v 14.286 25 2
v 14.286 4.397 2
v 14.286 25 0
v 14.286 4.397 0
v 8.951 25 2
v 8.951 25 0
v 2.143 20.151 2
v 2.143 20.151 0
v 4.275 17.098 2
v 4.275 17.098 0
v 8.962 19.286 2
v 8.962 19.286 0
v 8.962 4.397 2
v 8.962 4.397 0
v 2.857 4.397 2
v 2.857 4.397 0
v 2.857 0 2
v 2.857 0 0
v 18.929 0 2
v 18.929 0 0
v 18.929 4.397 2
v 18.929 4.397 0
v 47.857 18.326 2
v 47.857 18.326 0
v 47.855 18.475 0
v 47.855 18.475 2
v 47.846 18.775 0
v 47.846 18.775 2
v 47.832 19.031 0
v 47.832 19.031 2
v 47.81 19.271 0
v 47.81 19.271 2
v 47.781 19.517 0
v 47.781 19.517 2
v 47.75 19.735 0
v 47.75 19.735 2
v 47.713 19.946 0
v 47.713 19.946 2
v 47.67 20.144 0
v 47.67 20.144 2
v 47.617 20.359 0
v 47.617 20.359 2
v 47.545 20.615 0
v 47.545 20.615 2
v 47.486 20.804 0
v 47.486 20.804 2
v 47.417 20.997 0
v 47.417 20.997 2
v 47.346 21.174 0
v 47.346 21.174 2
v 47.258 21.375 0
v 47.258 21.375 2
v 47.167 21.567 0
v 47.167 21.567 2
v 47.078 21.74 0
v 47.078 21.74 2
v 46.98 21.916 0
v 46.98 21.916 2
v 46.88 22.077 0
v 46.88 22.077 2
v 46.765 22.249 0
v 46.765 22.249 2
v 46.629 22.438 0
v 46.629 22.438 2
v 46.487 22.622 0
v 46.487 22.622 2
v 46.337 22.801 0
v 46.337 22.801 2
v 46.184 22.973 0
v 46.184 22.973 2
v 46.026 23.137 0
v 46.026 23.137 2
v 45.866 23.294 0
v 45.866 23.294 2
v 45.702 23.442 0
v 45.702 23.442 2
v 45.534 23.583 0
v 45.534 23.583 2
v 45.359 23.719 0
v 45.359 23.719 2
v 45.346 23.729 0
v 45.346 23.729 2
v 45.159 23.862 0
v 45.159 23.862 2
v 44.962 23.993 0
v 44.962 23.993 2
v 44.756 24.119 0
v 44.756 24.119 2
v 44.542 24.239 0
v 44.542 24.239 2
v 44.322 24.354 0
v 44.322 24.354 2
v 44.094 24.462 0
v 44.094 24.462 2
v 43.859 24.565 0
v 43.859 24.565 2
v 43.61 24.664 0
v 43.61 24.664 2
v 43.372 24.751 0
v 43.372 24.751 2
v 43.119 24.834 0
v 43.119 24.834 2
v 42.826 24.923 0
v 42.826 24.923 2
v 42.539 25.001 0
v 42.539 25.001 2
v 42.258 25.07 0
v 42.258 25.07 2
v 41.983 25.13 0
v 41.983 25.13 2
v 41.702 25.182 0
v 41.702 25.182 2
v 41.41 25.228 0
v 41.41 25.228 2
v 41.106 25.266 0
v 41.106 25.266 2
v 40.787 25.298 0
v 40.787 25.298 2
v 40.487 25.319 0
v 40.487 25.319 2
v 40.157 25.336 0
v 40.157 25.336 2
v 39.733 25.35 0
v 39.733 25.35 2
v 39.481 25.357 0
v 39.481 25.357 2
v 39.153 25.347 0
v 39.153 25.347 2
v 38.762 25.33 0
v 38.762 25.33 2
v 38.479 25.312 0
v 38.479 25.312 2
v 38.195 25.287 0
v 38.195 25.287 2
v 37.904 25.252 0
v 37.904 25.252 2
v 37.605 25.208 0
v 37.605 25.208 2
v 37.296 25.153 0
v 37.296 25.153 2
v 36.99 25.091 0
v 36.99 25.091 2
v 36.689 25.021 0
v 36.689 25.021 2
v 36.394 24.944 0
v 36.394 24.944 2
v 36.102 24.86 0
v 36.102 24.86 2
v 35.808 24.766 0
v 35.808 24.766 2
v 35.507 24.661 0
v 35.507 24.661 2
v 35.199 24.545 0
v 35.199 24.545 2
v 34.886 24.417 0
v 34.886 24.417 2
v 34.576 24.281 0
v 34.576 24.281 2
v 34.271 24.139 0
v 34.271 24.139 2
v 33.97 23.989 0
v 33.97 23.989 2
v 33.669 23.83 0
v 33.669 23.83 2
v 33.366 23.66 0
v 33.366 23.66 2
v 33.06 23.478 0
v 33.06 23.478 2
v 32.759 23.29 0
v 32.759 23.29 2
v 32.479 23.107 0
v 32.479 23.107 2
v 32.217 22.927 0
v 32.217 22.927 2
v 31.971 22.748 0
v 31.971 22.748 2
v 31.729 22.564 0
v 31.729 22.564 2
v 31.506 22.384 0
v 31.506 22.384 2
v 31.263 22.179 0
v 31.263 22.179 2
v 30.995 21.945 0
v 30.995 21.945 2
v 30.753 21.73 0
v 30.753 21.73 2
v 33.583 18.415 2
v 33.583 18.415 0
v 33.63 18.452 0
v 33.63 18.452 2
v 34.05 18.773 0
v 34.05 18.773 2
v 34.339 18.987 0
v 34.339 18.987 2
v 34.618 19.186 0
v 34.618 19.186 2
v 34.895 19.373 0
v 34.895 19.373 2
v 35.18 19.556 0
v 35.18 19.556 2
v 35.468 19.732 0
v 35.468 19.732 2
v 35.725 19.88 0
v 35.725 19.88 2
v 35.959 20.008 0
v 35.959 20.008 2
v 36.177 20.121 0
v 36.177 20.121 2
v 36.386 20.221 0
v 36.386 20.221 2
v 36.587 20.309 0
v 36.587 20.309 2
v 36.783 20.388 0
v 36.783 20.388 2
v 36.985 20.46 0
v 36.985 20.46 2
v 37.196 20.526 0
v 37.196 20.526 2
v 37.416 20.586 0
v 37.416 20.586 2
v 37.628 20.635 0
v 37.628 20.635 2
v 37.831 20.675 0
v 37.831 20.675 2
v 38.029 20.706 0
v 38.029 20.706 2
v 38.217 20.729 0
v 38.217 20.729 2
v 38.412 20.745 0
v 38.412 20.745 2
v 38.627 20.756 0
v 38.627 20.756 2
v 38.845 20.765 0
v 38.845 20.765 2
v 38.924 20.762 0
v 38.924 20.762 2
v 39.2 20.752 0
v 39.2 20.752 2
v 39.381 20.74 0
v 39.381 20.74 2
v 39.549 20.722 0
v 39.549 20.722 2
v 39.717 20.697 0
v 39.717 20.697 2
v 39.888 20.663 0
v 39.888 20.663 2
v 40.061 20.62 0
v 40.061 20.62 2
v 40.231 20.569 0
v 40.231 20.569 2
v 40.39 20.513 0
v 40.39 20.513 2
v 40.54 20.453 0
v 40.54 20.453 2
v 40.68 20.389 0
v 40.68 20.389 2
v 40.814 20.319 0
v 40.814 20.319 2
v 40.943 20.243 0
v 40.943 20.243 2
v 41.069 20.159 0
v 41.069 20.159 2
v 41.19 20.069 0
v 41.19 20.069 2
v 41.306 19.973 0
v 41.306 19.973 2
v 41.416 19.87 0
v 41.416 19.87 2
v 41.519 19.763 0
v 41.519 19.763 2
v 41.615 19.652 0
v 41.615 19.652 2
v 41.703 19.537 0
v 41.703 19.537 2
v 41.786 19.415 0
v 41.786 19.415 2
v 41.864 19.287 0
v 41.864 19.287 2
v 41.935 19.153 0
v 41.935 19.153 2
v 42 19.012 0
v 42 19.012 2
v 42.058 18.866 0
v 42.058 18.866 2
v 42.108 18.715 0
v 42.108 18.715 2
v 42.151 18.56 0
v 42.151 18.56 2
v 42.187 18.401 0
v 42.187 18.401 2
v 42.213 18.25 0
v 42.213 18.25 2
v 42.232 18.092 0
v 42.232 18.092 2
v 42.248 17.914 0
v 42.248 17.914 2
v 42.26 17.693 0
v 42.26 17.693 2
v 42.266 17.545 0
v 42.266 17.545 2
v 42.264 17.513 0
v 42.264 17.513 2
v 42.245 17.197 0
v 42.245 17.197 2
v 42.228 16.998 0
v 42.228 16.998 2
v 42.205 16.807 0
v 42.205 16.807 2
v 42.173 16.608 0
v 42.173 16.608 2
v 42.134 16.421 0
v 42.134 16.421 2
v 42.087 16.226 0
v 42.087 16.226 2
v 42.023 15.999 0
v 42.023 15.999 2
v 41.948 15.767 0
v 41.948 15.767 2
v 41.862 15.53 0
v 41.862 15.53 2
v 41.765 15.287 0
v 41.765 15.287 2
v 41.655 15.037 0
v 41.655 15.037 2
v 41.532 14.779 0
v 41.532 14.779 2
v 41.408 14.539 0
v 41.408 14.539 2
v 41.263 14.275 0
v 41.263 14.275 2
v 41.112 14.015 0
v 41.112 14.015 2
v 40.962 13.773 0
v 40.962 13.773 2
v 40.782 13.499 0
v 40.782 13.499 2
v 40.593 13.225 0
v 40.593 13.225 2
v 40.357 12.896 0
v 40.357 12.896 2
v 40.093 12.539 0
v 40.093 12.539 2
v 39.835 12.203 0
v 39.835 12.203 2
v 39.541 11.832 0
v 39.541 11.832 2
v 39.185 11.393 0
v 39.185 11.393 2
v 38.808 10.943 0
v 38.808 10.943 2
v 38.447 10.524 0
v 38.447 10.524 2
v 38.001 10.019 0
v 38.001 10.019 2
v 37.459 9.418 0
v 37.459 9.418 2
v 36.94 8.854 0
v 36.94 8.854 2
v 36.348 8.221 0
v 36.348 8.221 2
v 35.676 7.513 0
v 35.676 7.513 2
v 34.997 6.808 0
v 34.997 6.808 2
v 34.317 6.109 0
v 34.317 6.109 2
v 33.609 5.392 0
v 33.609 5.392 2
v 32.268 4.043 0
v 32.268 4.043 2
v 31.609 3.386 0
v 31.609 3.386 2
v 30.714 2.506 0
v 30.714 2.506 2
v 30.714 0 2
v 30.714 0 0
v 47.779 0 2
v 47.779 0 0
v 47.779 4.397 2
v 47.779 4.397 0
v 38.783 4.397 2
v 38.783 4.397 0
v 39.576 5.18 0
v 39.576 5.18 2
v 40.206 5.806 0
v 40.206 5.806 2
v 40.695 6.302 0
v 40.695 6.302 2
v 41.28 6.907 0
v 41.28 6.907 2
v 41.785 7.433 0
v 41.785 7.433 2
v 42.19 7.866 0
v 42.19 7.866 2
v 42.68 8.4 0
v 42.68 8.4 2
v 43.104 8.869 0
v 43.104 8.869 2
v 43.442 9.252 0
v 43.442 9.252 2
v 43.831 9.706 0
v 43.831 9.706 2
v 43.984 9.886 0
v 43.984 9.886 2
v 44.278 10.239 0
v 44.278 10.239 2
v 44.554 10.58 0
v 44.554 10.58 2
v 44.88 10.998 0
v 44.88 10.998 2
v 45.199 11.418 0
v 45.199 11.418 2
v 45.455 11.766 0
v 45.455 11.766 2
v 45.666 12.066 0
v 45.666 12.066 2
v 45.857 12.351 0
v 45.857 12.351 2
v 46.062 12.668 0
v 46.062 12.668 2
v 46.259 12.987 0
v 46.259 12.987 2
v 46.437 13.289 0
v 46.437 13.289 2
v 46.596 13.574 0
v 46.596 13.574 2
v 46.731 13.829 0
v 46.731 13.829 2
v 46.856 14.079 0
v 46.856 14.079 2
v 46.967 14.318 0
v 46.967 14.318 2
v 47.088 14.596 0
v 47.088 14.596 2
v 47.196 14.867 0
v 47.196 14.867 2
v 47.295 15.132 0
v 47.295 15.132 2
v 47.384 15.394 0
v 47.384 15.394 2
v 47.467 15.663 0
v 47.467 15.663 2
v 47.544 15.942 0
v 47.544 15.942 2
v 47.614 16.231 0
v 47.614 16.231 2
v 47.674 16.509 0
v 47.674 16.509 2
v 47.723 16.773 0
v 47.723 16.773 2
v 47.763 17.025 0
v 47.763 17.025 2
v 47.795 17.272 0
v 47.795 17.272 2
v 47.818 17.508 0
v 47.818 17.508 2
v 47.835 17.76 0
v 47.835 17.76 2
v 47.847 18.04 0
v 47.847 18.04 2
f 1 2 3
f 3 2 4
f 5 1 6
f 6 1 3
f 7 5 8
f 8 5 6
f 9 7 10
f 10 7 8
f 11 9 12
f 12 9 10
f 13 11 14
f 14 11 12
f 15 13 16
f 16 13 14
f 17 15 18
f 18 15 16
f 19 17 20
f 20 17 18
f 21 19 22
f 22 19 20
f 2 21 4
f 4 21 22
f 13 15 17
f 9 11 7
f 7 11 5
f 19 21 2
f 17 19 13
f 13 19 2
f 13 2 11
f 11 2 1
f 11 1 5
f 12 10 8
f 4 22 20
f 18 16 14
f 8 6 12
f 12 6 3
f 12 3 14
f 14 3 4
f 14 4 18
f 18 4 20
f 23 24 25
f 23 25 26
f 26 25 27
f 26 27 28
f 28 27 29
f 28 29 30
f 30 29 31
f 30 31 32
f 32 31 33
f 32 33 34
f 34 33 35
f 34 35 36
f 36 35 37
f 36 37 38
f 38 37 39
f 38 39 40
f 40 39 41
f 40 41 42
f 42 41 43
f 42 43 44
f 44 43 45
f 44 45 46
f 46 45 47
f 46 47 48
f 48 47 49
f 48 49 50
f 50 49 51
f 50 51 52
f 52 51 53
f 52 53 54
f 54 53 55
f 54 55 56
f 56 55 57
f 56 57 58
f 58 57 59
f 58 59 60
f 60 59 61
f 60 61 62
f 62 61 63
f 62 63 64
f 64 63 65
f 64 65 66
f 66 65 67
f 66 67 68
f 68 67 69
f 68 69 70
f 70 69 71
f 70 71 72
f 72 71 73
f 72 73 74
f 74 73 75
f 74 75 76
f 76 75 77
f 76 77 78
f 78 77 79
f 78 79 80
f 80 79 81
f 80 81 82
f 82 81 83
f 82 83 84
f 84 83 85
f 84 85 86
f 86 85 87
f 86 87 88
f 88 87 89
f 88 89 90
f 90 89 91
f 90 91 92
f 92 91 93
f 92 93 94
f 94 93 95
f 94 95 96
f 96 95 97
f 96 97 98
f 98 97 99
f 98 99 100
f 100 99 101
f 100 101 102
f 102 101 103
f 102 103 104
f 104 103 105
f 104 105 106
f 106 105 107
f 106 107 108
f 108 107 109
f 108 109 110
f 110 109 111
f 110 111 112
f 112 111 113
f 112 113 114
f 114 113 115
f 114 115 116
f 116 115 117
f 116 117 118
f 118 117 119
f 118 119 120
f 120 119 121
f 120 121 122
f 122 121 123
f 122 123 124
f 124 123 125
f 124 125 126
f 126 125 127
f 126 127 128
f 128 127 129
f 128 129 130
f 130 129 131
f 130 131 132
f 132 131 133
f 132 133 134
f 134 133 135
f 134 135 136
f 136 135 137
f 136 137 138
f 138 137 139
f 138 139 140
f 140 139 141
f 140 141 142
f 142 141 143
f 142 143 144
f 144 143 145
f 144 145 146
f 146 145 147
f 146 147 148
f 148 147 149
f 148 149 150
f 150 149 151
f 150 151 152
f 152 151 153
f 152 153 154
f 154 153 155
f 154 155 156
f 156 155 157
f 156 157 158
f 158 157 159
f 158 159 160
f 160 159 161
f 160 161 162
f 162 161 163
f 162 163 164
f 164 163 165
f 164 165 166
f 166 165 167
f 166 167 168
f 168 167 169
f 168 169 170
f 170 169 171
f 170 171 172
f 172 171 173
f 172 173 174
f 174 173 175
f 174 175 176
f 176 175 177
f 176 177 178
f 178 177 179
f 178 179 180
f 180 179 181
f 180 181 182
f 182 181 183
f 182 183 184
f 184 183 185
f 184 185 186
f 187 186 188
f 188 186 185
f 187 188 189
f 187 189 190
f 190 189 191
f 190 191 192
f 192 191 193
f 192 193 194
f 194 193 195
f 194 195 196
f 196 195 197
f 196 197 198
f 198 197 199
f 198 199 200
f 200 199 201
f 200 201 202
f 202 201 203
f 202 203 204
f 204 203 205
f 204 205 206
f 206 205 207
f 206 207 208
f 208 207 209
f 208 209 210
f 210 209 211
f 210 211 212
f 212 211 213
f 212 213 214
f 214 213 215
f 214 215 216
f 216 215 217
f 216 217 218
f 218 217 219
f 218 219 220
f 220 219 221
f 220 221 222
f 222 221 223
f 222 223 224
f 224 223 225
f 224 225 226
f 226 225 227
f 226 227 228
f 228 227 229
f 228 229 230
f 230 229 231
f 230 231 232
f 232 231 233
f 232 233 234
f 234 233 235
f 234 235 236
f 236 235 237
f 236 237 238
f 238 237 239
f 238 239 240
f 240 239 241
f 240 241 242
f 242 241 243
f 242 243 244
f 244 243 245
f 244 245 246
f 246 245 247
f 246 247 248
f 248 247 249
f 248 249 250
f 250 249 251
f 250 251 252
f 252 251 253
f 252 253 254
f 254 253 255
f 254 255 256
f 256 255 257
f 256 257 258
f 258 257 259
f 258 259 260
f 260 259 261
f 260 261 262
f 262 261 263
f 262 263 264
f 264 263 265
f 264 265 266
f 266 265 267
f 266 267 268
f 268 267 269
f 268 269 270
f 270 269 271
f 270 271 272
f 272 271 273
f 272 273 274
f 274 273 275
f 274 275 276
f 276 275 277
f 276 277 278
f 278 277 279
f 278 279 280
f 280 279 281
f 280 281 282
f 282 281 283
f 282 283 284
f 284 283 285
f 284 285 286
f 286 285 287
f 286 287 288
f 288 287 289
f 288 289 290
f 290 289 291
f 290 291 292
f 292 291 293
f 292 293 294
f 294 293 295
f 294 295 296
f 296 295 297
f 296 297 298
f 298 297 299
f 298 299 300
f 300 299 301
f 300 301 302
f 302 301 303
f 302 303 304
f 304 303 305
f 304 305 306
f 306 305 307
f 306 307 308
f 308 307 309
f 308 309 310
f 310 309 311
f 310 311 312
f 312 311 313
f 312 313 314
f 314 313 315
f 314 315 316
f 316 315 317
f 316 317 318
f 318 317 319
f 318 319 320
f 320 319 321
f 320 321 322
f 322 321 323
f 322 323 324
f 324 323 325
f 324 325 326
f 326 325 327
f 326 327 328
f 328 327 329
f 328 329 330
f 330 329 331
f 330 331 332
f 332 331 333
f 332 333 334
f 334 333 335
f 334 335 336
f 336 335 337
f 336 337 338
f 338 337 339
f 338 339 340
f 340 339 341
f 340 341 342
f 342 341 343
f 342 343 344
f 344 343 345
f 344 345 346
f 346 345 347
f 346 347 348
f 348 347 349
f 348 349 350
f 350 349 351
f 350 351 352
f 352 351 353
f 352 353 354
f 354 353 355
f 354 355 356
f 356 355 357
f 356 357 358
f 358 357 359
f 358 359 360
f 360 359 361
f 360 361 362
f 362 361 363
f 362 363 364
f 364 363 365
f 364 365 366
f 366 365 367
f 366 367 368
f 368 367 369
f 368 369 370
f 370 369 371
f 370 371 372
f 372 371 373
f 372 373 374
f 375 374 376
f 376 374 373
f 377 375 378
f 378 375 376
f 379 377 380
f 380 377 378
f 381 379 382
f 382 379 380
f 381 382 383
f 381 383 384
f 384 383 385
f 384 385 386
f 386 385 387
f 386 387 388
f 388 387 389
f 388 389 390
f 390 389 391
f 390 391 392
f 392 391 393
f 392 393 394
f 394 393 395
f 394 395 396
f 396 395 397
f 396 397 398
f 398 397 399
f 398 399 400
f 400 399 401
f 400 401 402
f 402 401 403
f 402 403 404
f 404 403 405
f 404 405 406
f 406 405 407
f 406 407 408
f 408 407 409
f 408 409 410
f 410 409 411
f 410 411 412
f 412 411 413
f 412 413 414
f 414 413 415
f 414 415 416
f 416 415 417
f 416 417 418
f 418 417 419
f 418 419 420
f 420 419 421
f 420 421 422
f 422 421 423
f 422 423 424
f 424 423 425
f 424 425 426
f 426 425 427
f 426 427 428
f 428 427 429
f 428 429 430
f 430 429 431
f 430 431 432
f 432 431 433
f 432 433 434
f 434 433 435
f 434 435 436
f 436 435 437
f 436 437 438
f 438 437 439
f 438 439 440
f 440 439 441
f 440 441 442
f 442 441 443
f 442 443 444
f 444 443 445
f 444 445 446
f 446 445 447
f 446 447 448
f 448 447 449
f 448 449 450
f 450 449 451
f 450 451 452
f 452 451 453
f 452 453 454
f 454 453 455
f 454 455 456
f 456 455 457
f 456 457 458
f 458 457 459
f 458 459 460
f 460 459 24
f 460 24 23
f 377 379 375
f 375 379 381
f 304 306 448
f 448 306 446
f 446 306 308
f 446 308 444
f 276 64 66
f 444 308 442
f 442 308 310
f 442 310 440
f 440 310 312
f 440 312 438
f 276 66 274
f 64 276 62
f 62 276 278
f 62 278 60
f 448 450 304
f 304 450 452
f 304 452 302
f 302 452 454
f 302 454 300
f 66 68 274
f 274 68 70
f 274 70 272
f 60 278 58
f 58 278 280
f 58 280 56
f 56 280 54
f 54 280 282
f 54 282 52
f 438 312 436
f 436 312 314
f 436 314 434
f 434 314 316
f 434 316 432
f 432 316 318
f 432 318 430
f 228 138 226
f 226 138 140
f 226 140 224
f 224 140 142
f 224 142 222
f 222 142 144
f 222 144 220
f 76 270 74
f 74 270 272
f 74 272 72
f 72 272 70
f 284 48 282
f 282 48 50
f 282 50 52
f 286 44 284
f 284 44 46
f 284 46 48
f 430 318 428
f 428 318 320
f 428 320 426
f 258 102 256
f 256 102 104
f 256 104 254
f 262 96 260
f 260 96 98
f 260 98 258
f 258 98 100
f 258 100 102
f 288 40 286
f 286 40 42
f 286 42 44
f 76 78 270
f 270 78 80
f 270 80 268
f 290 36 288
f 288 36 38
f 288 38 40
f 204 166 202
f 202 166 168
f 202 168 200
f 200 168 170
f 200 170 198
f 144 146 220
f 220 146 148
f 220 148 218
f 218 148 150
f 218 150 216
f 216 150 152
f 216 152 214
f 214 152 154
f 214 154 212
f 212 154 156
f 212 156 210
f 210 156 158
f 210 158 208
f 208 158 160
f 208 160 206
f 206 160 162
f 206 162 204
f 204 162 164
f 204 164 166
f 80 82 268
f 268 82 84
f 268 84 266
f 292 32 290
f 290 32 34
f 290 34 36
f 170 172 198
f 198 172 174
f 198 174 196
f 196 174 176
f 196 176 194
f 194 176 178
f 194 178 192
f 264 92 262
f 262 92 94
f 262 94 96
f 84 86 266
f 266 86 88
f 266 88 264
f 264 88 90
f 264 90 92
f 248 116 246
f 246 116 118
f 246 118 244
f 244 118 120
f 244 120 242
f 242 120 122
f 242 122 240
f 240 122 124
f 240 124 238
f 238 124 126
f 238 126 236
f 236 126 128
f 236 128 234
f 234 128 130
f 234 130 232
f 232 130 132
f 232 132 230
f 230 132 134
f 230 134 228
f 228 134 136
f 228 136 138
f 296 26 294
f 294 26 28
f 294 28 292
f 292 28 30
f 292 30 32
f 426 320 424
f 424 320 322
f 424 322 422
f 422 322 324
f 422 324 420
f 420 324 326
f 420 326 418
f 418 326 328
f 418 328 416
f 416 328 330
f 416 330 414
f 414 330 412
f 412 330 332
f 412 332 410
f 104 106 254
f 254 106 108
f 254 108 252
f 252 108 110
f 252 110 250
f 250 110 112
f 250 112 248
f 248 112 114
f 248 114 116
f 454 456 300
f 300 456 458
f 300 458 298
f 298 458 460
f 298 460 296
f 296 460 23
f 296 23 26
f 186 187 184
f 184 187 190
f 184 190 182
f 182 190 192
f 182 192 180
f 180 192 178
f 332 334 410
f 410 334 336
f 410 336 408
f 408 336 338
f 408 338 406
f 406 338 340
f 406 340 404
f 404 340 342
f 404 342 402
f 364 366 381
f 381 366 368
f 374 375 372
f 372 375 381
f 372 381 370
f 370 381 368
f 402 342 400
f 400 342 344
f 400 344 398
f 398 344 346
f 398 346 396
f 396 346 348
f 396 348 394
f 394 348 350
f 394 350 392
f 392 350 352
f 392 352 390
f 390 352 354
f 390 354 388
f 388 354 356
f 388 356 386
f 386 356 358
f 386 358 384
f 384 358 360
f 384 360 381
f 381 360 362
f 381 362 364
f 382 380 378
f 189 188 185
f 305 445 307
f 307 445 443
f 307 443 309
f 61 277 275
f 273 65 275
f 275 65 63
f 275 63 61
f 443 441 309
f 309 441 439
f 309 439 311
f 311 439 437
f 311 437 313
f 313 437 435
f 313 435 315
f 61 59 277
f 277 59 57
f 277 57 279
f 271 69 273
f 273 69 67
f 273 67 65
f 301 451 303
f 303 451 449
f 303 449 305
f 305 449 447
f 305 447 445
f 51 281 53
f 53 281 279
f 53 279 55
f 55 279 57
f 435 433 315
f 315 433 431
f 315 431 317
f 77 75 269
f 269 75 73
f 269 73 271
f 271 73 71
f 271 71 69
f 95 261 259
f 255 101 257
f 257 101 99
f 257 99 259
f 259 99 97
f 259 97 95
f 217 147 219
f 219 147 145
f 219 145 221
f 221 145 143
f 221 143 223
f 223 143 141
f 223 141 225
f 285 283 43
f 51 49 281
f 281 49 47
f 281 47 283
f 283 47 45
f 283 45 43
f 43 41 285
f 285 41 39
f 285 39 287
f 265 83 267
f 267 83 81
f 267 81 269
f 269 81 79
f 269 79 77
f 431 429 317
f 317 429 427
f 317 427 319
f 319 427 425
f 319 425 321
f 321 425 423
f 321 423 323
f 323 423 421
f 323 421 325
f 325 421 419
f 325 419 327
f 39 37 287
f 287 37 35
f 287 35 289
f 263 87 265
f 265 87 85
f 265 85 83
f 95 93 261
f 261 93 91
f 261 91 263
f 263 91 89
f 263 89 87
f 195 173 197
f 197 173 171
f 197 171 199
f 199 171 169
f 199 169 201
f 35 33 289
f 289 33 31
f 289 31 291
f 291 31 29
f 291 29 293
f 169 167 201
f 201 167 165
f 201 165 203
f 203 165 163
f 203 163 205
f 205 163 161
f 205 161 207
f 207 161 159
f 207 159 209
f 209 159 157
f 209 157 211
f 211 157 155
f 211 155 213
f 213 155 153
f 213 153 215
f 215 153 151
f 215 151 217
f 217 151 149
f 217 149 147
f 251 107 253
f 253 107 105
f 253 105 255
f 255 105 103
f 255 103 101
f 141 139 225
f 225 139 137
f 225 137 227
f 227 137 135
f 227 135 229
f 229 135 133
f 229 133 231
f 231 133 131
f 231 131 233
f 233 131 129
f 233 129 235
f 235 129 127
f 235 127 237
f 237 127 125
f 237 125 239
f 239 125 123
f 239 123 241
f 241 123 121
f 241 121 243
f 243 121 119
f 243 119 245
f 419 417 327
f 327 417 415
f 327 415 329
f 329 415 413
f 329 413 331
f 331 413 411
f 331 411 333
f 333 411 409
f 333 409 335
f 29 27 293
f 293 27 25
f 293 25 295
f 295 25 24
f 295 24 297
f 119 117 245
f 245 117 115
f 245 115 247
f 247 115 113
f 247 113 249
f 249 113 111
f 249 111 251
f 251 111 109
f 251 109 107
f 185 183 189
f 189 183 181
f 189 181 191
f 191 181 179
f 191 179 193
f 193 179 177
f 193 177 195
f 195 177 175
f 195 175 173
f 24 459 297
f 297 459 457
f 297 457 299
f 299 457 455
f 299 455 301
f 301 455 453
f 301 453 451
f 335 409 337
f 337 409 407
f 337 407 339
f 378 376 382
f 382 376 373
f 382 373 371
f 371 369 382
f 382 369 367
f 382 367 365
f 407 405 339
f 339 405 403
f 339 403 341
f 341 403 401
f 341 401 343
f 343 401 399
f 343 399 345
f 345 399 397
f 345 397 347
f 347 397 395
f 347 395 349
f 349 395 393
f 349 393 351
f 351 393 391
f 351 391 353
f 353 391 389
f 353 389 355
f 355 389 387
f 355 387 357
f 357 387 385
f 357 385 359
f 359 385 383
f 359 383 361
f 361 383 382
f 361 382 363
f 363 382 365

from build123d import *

# Parameters (mm, degrees)
BOSS_EXTRUDE1_DEPTH   = 2
BOSS_EXTRUDE1_2_DEPTH = 2


with BuildPart() as part:
    # Sketch1 → Boss-Extrude1 (new body)
    with BuildSketch(Plane.XY):
        Polygon((14.285714286, 4.397321429), (18.928571429, 4.397321429), (18.928571429, 0), (2.857142857, 0), (2.857142857, 4.397321429), (8.962053571, 4.397321429), (8.962053571, 19.285714286), (4.274553571, 17.098214286), (2.142857143, 20.150669643), (8.950892857, 25), (14.285714286, 25), align=None)
    extrude(amount=BOSS_EXTRUDE1_DEPTH)


with BuildPart() as body_2:
    # Sketch1 → Boss-Extrude1 2 (new body)
    with BuildSketch(Plane.XY):
        with BuildLine():
            add(Edge.make_bspline(
                [(47.857142857, 18.325892857), (47.847047534, 18.012830167), (47.826751332, 17.383431451), (47.674148464, 16.441662045), (47.436095787, 15.500544925), (47.148999973, 14.723932176), (46.869509729, 14.095290404), (46.615389998, 13.603154729), (46.327158781, 13.092923803), (45.999781168, 12.565350665), (45.639932301, 12.01977426), (45.233860548, 11.460605883), (44.794078589, 10.882536146), (44.31845441, 10.281314918), (43.793150417, 9.65983538), (43.227946795, 9.001415766), (42.605172536, 8.317688691), (41.941963322, 7.593464234), (41.220638893, 6.844908491), (40.456719198, 6.053800209), (39.635971612, 5.237506304), (39.072019005, 4.681693631), (38.783482143, 4.397321429)],
                knots=[0, 0, 0, 0, 1.100845728, 2.213201733, 3.347907492, 4.511248748, 5.120476086, 5.767201514, 6.458686229, 7.18141409, 7.950881571, 8.757165455, 9.611732629, 10.505889173, 11.453421634, 12.47400406, 13.558095852, 14.706472467, 15.928260719, 17.214641761, 18.574918322, 20, 20, 20, 20], degree=3))
            Line((38.783482143, 4.397321429), (47.779017857, 4.397321429))
            Line((47.779017857, 4.397321429), (47.779017857, 0))
            Line((47.779017857, 0), (30.714285714, 0))
            Line((30.714285714, 0), (30.714285714, 2.505580357))
            add(Edge.make_bspline(
                [(30.714285714, 2.505580357), (31.100426691, 2.883944098), (31.850151795, 3.618569044), (32.922874669, 4.70546958), (33.937536251, 5.718408892), (34.872825911, 6.678610029), (35.738486379, 7.576411744), (36.532789018, 8.415358595), (37.255412919, 9.192143973), (37.909682031, 9.914412986), (38.505036488, 10.586168331), (39.048471859, 11.224183356), (39.542265693, 11.829711518), (39.992862365, 12.401080248), (40.393165264, 12.941898648), (40.751720815, 13.44774961), (41.060086703, 13.921839221), (41.396813444, 14.500653833), (41.740905878, 15.189178222), (42.041357198, 16.000005567), (42.224254087, 16.783212094), (42.252136589, 17.296388938), (42.265625, 17.544642857)],
                knots=[0, 0, 0, 0, 1.681103221, 3.264002948, 4.748739028, 6.139491879, 7.432217462, 8.626994239, 9.732096377, 10.731303213, 11.65745276, 12.52327445, 13.337248416, 14.087077573, 14.785837962, 15.429360383, 16.014983106, 16.543770616, 17.511265766, 18.404271926, 19.228052177, 20, 20, 20, 20], degree=3))
            add(Edge.make_bspline(
                [(42.265625, 17.544642857), (42.256124323, 17.787523525), (42.238034005, 18.249994614), (42.068441924, 18.903133056), (41.780635072, 19.469158017), (41.375049612, 19.94064117), (40.869969067, 20.315250274), (40.270179536, 20.57511319), (39.586891153, 20.743641808), (39.100808352, 20.757311357), (38.844866071, 20.764508929)],
                knots=[0, 0, 0, 0, 1.091714092, 2.078741832, 3.011202065, 3.925746218, 4.853495407, 5.816725453, 6.850417529, 8, 8, 8, 8], degree=3))
            add(Edge.make_bspline(
                [(38.844866071, 20.764508929), (38.624905773, 20.756565074), (38.184074037, 20.740644459), (37.530834948, 20.624924792), (36.887808861, 20.441157592), (36.256632782, 20.171734146), (35.621929913, 19.82858859), (34.961319782, 19.426081071), (34.275889482, 18.950083724), (33.819133759, 18.597680839), (33.582589286, 18.415178571)],
                knots=[0, 0, 0, 0, 0.897777216, 1.79927328, 2.700641362, 3.623136151, 4.594842017, 5.644701961, 6.78023918, 8, 8, 8, 8], degree=3))
            Line((33.582589286, 18.415178571), (30.753348214, 21.729910714))
            add(Edge.make_bspline(
                [(30.753348214, 21.729910714), (31.060875059, 22.003904683), (31.67230514, 22.54866413), (32.674101368, 23.253953044), (33.721113812, 23.878535413), (34.816629606, 24.406522088), (35.948237456, 24.834944769), (37.108081926, 25.135628197), (38.288297416, 25.320899854), (39.082297636, 25.34502683), (39.481026786, 25.357142857)],
                knots=[0, 0, 0, 0, 1.021144944, 2.030257671, 3.033836159, 4.043170469, 5.043507399, 6.030771669, 7.011097581, 8, 8, 8, 8], degree=3))
            add(Edge.make_bspline(
                [(39.481026786, 25.357142857), (39.877563018, 25.346773512), (40.648996813, 25.326600668), (41.772254713, 25.191229072), (42.820728649, 24.940408171), (43.801766004, 24.612145809), (44.696653356, 24.178492697), (45.500154687, 23.64294789), (46.194322052, 22.994943197), (46.690606914, 22.377002931), (47.033315791, 21.840152465), (47.248392226, 21.405468006), (47.442331033, 20.955004121), (47.58952913, 20.474813406), (47.716279717, 19.972977407), (47.795434729, 19.443962246), (47.848401189, 18.892456496), (47.854184649, 18.517619783), (47.857142857, 18.325892857)],
                knots=[0, 0, 0, 0, 1.537755779, 2.991597445, 4.377277701, 5.711696503, 6.995623783, 8.221973749, 9.441836677, 10.662957162, 11.285333074, 11.907917941, 12.541560989, 13.184860494, 13.853150981, 14.546882282, 15.256738248, 16, 16, 16, 16], degree=3))
        make_face()
    extrude(amount=BOSS_EXTRUDE1_2_DEPTH)


solid = Compound([part.part, body_2.part])
